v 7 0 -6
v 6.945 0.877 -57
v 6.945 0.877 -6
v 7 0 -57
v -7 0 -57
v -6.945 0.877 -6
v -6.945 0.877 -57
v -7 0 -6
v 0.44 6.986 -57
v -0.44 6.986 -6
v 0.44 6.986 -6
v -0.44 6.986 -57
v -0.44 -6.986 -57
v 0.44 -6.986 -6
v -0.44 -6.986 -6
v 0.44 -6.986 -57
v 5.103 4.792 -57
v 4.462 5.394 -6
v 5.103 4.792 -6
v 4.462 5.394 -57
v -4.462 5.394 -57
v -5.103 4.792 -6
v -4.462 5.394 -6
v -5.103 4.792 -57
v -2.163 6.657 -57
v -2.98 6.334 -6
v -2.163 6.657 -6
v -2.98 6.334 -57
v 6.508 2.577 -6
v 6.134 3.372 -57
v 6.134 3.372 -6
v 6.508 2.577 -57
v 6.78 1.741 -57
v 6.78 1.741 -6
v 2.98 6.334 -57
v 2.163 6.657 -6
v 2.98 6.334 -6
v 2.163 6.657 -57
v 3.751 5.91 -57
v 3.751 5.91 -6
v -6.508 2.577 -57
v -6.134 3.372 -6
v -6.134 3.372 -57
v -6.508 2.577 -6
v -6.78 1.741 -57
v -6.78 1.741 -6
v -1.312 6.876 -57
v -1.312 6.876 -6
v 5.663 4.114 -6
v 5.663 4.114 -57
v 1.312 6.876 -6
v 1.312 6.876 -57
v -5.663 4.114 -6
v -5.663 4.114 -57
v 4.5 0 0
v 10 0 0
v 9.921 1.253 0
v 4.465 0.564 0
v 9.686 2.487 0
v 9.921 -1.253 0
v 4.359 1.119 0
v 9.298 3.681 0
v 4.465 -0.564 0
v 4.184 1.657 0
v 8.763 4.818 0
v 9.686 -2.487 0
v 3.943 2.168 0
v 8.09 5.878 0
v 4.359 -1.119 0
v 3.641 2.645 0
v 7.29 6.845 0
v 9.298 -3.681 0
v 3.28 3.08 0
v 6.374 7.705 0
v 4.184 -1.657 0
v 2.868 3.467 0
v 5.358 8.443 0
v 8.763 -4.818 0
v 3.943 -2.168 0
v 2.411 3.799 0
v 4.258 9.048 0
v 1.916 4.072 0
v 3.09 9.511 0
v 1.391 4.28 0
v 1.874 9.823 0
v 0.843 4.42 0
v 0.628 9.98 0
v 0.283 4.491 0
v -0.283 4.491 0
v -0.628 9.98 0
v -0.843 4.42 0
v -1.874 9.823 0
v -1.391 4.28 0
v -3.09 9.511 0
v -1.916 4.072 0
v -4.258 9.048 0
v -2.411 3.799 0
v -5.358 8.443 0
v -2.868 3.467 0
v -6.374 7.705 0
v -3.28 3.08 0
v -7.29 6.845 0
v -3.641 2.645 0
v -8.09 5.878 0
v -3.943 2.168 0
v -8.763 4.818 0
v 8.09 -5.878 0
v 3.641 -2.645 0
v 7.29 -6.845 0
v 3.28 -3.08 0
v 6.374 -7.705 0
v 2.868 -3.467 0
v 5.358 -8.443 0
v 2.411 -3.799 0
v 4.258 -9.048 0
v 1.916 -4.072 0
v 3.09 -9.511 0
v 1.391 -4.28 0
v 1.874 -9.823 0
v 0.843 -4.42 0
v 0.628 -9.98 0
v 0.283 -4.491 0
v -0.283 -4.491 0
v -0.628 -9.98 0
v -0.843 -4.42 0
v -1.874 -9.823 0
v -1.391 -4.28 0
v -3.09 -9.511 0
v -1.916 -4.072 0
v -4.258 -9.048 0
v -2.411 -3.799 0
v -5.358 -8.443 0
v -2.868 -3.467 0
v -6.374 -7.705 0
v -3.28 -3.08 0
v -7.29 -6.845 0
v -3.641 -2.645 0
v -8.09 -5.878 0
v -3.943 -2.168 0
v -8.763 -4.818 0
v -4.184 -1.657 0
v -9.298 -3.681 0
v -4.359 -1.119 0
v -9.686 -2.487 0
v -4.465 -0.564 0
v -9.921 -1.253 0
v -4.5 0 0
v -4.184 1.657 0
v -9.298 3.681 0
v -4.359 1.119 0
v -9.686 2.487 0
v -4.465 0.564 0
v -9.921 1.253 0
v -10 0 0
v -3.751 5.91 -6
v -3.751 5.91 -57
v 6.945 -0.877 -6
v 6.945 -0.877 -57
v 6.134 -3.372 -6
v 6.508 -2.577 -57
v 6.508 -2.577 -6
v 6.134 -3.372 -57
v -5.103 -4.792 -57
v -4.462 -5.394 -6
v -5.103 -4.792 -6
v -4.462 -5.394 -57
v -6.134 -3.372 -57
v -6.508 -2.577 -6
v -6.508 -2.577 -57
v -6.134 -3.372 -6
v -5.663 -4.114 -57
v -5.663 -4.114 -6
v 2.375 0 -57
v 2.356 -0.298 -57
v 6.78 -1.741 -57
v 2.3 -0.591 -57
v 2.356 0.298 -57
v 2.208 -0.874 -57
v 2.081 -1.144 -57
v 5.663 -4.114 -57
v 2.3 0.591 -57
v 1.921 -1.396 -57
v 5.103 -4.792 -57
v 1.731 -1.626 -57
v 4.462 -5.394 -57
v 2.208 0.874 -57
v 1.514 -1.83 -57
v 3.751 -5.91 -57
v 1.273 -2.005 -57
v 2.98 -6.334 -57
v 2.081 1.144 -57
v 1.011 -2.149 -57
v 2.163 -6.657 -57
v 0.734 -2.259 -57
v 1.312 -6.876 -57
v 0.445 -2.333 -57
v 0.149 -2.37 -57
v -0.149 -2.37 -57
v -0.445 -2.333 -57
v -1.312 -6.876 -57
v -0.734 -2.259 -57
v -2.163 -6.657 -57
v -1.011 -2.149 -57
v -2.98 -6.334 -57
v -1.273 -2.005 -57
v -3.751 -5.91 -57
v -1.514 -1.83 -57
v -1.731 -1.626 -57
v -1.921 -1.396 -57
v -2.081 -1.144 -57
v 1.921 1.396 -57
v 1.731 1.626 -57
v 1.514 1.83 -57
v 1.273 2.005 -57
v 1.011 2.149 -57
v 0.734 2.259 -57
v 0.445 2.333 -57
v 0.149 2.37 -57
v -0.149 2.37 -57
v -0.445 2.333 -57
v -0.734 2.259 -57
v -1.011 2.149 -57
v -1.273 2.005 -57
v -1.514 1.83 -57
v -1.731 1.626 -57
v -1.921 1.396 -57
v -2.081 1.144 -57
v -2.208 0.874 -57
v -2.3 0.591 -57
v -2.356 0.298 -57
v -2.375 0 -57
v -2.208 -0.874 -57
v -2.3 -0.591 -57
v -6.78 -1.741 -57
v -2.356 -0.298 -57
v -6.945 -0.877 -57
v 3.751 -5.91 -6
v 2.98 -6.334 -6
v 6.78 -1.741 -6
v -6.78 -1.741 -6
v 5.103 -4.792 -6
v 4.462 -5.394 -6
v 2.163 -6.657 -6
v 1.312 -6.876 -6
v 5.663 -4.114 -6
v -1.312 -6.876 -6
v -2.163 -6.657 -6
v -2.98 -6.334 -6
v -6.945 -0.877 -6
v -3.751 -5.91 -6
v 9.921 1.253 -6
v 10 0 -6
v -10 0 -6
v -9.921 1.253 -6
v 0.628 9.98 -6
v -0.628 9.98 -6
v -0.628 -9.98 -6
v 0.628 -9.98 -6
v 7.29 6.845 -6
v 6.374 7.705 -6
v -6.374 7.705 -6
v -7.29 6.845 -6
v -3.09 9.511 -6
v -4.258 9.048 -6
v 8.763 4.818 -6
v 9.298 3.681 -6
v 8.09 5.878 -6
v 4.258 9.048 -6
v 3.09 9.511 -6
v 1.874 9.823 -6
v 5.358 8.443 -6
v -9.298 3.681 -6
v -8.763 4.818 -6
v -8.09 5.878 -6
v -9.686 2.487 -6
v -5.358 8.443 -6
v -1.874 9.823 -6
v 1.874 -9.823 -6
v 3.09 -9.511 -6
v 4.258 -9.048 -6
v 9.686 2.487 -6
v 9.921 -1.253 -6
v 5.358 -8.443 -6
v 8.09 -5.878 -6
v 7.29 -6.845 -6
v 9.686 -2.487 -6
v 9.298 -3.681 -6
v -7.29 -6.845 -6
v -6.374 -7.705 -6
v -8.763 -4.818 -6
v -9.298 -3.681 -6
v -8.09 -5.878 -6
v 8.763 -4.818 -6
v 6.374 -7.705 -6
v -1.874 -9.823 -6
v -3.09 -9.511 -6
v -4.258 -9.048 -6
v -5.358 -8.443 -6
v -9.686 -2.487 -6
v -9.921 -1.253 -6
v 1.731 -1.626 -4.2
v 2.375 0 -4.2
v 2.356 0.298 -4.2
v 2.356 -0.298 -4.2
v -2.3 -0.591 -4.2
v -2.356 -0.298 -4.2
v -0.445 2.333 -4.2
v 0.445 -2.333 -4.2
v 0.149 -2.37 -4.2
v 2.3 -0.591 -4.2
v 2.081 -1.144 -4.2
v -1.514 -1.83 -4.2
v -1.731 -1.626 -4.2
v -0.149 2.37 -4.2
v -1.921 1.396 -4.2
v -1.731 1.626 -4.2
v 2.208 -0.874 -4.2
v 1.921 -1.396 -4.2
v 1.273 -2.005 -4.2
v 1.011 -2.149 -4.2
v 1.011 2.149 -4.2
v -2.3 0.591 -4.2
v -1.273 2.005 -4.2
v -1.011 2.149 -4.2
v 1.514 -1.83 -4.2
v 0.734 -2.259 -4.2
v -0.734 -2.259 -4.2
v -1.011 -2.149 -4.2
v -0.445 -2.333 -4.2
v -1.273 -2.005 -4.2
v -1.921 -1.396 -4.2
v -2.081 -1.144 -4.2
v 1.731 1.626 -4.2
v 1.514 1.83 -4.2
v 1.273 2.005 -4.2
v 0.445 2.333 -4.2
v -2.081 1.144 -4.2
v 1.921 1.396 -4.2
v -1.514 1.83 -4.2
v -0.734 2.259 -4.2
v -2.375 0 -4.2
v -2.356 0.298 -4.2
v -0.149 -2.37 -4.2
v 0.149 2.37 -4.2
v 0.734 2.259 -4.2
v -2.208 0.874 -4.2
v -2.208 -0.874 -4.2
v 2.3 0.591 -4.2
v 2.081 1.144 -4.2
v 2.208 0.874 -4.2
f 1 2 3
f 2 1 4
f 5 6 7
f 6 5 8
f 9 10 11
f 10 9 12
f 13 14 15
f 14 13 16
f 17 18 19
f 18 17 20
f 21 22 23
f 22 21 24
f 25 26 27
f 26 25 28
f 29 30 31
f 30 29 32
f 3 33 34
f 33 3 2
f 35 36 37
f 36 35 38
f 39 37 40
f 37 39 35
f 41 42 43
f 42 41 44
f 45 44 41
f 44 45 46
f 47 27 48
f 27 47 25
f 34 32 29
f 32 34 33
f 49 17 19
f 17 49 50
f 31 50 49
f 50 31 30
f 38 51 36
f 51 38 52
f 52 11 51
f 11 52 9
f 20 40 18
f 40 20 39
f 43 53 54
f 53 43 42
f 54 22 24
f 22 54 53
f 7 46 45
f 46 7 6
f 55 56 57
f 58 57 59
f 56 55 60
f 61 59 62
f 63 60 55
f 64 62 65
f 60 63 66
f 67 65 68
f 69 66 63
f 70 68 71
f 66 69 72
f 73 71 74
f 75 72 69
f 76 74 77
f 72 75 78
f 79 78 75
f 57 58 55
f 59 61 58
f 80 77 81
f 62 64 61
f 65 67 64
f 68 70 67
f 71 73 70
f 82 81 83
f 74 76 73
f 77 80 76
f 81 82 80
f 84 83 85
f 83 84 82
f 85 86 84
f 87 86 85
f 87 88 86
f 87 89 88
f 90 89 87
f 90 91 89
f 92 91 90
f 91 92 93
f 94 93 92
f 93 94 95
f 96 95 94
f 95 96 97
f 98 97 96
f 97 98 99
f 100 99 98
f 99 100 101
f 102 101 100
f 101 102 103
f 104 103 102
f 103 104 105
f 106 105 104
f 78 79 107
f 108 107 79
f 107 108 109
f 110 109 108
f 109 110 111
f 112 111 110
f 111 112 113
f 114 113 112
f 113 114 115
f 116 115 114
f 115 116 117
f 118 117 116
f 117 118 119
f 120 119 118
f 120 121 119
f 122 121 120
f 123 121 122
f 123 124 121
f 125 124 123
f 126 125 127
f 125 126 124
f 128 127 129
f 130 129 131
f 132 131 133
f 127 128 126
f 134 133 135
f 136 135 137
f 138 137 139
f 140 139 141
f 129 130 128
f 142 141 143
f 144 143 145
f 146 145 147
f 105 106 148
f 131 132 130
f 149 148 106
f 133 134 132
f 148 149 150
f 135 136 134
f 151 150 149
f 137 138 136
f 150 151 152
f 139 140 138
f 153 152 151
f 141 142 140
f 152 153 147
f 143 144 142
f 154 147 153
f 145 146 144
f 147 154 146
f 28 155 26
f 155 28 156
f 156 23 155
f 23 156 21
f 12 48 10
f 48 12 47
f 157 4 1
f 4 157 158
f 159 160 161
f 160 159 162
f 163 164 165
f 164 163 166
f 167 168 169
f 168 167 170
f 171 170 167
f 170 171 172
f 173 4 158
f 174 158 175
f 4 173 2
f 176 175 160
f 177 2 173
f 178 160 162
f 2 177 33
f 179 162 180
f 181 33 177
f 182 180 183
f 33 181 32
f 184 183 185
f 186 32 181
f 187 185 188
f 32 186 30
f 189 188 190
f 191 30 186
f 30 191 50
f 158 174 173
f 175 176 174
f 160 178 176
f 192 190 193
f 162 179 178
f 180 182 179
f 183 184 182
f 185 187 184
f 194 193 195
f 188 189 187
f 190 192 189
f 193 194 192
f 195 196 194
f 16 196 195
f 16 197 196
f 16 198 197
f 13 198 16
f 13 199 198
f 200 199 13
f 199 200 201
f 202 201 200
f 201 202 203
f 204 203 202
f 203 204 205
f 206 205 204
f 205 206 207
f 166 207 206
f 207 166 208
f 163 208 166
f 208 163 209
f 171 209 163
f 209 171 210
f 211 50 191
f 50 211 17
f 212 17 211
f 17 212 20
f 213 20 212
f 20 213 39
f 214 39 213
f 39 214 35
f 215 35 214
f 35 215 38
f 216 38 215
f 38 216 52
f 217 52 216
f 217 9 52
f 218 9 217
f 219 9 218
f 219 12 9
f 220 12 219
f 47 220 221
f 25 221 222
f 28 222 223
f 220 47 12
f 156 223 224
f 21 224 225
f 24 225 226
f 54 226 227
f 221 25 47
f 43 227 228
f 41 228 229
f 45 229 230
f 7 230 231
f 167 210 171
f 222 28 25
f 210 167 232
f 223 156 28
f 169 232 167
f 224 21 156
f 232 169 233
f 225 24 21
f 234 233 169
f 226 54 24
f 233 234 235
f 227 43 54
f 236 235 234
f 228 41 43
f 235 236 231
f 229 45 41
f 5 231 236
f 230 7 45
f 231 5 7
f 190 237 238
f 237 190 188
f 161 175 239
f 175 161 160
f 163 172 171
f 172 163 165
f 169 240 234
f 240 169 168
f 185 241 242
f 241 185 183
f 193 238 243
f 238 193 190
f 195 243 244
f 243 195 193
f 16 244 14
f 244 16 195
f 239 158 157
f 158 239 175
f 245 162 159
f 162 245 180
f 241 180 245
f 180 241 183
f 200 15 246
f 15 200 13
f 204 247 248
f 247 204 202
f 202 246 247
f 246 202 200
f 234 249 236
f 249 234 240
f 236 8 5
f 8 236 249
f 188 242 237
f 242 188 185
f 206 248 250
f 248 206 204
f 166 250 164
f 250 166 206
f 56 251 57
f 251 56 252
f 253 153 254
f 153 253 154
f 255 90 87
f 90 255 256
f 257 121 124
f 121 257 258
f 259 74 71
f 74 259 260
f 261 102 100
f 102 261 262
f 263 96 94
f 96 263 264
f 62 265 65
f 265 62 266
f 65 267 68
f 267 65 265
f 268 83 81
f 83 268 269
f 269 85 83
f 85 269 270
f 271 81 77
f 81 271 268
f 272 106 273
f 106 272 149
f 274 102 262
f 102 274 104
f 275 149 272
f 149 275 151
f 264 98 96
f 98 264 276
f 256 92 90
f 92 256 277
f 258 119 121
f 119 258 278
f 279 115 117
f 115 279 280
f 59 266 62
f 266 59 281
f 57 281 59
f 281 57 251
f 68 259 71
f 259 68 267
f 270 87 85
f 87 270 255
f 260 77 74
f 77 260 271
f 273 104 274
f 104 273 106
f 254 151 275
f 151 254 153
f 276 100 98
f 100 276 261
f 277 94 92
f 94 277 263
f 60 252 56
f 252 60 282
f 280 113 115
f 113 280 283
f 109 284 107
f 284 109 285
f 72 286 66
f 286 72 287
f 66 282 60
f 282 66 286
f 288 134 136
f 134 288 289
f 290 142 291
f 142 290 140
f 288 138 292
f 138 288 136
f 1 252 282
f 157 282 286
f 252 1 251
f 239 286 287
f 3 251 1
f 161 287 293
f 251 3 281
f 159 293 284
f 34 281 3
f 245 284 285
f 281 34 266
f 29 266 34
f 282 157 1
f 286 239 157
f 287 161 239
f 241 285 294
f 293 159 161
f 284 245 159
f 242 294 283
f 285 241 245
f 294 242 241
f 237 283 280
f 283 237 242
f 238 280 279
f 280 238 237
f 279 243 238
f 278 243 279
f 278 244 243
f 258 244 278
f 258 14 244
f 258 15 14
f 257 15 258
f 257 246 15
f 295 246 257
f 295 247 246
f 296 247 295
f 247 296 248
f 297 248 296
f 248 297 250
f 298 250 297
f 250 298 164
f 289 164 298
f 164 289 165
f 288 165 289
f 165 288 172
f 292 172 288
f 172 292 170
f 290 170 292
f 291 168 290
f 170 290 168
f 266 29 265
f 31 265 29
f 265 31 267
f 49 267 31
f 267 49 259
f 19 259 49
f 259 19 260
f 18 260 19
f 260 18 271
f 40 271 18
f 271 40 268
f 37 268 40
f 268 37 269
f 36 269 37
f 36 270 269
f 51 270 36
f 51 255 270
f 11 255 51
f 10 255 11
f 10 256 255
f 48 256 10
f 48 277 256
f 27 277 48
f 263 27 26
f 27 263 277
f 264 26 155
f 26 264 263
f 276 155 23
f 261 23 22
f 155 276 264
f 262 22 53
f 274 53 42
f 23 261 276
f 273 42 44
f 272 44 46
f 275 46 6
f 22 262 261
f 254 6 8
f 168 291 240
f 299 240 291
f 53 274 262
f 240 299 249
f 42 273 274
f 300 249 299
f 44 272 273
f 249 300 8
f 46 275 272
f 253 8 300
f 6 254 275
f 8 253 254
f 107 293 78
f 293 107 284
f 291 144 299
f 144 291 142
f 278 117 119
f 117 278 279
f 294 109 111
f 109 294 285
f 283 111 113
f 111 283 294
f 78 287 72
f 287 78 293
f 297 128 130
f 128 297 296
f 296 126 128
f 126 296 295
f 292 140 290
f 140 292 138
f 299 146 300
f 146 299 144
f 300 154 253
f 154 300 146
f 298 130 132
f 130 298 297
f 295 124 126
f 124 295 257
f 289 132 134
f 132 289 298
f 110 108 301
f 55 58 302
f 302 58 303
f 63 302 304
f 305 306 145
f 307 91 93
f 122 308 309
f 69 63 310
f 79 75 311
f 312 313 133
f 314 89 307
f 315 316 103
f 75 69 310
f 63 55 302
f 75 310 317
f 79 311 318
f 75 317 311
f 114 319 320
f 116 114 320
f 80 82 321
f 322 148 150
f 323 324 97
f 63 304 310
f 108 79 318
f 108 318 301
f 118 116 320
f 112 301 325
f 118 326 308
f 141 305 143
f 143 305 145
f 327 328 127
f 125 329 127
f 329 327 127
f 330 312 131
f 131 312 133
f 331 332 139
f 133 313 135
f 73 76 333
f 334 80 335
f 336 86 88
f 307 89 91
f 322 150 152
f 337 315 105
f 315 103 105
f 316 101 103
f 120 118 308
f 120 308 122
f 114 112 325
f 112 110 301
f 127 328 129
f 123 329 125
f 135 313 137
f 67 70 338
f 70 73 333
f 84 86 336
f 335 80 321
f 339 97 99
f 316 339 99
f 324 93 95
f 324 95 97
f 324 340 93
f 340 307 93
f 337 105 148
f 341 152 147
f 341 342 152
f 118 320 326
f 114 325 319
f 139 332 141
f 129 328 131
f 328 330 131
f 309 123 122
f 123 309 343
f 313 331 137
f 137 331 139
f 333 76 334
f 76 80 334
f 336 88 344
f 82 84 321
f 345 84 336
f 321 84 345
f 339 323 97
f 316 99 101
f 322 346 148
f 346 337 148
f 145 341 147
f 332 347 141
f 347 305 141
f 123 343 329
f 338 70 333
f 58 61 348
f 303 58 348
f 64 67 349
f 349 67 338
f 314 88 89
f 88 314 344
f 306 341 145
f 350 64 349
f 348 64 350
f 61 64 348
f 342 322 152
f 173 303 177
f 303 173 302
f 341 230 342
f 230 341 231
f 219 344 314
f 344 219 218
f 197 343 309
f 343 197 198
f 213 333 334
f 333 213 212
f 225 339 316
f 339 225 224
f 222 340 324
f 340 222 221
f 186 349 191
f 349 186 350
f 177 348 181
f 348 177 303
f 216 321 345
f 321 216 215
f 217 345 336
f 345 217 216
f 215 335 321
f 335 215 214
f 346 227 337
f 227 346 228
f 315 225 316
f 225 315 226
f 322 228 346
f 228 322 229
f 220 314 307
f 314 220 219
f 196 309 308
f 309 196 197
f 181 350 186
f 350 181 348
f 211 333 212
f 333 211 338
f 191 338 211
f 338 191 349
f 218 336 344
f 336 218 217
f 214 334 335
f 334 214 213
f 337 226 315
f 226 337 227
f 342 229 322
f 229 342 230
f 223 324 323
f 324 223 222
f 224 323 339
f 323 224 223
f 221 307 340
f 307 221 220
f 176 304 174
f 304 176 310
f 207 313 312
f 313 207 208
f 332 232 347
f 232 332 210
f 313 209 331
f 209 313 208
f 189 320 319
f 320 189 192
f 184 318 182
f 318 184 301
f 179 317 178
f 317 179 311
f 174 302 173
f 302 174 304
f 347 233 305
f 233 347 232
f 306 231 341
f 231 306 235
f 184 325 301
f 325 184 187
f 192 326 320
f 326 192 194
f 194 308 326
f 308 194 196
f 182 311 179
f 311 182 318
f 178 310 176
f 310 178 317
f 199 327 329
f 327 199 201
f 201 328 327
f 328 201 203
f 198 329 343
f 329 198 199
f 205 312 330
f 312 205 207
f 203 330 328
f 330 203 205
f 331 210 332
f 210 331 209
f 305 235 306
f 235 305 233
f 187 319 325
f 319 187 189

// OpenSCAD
$fn = 50;


difference() {
	union() {
		translate(v = [0, 0, -57.0000000000]) {
			cylinder(h = 57, r = 7.0000000000);
		}
		translate(v = [0, 0, -6.0000000000]) {
			cylinder(h = 6, r = 10.0000000000);
		}
	}
	union() {
		translate(v = [0, 0, 0]) {
			rotate(a = [0, 0, 0]) {
				difference() {
					union() {
						#translate(v = [0, 0, -57.0000000000]) {
							cylinder(h = 57, r = 2.2500000000);
						}
						#translate(v = [0, 0, -4.2000000000]) {
							cylinder(h = 4.2000000000, r = 7.0000000000, r1 = 2.3750000000, r2 = 4.5000000000);
						}
						#translate(v = [0, 0, -57.0000000000]) {
							cylinder(h = 57, r = 2.3750000000);
						}
						#translate(v = [0, 0, -57.0000000000]) {
							cylinder(h = 57, r = 2.2500000000);
						}
					}
					union();
				}
			}
		}
	}
}
